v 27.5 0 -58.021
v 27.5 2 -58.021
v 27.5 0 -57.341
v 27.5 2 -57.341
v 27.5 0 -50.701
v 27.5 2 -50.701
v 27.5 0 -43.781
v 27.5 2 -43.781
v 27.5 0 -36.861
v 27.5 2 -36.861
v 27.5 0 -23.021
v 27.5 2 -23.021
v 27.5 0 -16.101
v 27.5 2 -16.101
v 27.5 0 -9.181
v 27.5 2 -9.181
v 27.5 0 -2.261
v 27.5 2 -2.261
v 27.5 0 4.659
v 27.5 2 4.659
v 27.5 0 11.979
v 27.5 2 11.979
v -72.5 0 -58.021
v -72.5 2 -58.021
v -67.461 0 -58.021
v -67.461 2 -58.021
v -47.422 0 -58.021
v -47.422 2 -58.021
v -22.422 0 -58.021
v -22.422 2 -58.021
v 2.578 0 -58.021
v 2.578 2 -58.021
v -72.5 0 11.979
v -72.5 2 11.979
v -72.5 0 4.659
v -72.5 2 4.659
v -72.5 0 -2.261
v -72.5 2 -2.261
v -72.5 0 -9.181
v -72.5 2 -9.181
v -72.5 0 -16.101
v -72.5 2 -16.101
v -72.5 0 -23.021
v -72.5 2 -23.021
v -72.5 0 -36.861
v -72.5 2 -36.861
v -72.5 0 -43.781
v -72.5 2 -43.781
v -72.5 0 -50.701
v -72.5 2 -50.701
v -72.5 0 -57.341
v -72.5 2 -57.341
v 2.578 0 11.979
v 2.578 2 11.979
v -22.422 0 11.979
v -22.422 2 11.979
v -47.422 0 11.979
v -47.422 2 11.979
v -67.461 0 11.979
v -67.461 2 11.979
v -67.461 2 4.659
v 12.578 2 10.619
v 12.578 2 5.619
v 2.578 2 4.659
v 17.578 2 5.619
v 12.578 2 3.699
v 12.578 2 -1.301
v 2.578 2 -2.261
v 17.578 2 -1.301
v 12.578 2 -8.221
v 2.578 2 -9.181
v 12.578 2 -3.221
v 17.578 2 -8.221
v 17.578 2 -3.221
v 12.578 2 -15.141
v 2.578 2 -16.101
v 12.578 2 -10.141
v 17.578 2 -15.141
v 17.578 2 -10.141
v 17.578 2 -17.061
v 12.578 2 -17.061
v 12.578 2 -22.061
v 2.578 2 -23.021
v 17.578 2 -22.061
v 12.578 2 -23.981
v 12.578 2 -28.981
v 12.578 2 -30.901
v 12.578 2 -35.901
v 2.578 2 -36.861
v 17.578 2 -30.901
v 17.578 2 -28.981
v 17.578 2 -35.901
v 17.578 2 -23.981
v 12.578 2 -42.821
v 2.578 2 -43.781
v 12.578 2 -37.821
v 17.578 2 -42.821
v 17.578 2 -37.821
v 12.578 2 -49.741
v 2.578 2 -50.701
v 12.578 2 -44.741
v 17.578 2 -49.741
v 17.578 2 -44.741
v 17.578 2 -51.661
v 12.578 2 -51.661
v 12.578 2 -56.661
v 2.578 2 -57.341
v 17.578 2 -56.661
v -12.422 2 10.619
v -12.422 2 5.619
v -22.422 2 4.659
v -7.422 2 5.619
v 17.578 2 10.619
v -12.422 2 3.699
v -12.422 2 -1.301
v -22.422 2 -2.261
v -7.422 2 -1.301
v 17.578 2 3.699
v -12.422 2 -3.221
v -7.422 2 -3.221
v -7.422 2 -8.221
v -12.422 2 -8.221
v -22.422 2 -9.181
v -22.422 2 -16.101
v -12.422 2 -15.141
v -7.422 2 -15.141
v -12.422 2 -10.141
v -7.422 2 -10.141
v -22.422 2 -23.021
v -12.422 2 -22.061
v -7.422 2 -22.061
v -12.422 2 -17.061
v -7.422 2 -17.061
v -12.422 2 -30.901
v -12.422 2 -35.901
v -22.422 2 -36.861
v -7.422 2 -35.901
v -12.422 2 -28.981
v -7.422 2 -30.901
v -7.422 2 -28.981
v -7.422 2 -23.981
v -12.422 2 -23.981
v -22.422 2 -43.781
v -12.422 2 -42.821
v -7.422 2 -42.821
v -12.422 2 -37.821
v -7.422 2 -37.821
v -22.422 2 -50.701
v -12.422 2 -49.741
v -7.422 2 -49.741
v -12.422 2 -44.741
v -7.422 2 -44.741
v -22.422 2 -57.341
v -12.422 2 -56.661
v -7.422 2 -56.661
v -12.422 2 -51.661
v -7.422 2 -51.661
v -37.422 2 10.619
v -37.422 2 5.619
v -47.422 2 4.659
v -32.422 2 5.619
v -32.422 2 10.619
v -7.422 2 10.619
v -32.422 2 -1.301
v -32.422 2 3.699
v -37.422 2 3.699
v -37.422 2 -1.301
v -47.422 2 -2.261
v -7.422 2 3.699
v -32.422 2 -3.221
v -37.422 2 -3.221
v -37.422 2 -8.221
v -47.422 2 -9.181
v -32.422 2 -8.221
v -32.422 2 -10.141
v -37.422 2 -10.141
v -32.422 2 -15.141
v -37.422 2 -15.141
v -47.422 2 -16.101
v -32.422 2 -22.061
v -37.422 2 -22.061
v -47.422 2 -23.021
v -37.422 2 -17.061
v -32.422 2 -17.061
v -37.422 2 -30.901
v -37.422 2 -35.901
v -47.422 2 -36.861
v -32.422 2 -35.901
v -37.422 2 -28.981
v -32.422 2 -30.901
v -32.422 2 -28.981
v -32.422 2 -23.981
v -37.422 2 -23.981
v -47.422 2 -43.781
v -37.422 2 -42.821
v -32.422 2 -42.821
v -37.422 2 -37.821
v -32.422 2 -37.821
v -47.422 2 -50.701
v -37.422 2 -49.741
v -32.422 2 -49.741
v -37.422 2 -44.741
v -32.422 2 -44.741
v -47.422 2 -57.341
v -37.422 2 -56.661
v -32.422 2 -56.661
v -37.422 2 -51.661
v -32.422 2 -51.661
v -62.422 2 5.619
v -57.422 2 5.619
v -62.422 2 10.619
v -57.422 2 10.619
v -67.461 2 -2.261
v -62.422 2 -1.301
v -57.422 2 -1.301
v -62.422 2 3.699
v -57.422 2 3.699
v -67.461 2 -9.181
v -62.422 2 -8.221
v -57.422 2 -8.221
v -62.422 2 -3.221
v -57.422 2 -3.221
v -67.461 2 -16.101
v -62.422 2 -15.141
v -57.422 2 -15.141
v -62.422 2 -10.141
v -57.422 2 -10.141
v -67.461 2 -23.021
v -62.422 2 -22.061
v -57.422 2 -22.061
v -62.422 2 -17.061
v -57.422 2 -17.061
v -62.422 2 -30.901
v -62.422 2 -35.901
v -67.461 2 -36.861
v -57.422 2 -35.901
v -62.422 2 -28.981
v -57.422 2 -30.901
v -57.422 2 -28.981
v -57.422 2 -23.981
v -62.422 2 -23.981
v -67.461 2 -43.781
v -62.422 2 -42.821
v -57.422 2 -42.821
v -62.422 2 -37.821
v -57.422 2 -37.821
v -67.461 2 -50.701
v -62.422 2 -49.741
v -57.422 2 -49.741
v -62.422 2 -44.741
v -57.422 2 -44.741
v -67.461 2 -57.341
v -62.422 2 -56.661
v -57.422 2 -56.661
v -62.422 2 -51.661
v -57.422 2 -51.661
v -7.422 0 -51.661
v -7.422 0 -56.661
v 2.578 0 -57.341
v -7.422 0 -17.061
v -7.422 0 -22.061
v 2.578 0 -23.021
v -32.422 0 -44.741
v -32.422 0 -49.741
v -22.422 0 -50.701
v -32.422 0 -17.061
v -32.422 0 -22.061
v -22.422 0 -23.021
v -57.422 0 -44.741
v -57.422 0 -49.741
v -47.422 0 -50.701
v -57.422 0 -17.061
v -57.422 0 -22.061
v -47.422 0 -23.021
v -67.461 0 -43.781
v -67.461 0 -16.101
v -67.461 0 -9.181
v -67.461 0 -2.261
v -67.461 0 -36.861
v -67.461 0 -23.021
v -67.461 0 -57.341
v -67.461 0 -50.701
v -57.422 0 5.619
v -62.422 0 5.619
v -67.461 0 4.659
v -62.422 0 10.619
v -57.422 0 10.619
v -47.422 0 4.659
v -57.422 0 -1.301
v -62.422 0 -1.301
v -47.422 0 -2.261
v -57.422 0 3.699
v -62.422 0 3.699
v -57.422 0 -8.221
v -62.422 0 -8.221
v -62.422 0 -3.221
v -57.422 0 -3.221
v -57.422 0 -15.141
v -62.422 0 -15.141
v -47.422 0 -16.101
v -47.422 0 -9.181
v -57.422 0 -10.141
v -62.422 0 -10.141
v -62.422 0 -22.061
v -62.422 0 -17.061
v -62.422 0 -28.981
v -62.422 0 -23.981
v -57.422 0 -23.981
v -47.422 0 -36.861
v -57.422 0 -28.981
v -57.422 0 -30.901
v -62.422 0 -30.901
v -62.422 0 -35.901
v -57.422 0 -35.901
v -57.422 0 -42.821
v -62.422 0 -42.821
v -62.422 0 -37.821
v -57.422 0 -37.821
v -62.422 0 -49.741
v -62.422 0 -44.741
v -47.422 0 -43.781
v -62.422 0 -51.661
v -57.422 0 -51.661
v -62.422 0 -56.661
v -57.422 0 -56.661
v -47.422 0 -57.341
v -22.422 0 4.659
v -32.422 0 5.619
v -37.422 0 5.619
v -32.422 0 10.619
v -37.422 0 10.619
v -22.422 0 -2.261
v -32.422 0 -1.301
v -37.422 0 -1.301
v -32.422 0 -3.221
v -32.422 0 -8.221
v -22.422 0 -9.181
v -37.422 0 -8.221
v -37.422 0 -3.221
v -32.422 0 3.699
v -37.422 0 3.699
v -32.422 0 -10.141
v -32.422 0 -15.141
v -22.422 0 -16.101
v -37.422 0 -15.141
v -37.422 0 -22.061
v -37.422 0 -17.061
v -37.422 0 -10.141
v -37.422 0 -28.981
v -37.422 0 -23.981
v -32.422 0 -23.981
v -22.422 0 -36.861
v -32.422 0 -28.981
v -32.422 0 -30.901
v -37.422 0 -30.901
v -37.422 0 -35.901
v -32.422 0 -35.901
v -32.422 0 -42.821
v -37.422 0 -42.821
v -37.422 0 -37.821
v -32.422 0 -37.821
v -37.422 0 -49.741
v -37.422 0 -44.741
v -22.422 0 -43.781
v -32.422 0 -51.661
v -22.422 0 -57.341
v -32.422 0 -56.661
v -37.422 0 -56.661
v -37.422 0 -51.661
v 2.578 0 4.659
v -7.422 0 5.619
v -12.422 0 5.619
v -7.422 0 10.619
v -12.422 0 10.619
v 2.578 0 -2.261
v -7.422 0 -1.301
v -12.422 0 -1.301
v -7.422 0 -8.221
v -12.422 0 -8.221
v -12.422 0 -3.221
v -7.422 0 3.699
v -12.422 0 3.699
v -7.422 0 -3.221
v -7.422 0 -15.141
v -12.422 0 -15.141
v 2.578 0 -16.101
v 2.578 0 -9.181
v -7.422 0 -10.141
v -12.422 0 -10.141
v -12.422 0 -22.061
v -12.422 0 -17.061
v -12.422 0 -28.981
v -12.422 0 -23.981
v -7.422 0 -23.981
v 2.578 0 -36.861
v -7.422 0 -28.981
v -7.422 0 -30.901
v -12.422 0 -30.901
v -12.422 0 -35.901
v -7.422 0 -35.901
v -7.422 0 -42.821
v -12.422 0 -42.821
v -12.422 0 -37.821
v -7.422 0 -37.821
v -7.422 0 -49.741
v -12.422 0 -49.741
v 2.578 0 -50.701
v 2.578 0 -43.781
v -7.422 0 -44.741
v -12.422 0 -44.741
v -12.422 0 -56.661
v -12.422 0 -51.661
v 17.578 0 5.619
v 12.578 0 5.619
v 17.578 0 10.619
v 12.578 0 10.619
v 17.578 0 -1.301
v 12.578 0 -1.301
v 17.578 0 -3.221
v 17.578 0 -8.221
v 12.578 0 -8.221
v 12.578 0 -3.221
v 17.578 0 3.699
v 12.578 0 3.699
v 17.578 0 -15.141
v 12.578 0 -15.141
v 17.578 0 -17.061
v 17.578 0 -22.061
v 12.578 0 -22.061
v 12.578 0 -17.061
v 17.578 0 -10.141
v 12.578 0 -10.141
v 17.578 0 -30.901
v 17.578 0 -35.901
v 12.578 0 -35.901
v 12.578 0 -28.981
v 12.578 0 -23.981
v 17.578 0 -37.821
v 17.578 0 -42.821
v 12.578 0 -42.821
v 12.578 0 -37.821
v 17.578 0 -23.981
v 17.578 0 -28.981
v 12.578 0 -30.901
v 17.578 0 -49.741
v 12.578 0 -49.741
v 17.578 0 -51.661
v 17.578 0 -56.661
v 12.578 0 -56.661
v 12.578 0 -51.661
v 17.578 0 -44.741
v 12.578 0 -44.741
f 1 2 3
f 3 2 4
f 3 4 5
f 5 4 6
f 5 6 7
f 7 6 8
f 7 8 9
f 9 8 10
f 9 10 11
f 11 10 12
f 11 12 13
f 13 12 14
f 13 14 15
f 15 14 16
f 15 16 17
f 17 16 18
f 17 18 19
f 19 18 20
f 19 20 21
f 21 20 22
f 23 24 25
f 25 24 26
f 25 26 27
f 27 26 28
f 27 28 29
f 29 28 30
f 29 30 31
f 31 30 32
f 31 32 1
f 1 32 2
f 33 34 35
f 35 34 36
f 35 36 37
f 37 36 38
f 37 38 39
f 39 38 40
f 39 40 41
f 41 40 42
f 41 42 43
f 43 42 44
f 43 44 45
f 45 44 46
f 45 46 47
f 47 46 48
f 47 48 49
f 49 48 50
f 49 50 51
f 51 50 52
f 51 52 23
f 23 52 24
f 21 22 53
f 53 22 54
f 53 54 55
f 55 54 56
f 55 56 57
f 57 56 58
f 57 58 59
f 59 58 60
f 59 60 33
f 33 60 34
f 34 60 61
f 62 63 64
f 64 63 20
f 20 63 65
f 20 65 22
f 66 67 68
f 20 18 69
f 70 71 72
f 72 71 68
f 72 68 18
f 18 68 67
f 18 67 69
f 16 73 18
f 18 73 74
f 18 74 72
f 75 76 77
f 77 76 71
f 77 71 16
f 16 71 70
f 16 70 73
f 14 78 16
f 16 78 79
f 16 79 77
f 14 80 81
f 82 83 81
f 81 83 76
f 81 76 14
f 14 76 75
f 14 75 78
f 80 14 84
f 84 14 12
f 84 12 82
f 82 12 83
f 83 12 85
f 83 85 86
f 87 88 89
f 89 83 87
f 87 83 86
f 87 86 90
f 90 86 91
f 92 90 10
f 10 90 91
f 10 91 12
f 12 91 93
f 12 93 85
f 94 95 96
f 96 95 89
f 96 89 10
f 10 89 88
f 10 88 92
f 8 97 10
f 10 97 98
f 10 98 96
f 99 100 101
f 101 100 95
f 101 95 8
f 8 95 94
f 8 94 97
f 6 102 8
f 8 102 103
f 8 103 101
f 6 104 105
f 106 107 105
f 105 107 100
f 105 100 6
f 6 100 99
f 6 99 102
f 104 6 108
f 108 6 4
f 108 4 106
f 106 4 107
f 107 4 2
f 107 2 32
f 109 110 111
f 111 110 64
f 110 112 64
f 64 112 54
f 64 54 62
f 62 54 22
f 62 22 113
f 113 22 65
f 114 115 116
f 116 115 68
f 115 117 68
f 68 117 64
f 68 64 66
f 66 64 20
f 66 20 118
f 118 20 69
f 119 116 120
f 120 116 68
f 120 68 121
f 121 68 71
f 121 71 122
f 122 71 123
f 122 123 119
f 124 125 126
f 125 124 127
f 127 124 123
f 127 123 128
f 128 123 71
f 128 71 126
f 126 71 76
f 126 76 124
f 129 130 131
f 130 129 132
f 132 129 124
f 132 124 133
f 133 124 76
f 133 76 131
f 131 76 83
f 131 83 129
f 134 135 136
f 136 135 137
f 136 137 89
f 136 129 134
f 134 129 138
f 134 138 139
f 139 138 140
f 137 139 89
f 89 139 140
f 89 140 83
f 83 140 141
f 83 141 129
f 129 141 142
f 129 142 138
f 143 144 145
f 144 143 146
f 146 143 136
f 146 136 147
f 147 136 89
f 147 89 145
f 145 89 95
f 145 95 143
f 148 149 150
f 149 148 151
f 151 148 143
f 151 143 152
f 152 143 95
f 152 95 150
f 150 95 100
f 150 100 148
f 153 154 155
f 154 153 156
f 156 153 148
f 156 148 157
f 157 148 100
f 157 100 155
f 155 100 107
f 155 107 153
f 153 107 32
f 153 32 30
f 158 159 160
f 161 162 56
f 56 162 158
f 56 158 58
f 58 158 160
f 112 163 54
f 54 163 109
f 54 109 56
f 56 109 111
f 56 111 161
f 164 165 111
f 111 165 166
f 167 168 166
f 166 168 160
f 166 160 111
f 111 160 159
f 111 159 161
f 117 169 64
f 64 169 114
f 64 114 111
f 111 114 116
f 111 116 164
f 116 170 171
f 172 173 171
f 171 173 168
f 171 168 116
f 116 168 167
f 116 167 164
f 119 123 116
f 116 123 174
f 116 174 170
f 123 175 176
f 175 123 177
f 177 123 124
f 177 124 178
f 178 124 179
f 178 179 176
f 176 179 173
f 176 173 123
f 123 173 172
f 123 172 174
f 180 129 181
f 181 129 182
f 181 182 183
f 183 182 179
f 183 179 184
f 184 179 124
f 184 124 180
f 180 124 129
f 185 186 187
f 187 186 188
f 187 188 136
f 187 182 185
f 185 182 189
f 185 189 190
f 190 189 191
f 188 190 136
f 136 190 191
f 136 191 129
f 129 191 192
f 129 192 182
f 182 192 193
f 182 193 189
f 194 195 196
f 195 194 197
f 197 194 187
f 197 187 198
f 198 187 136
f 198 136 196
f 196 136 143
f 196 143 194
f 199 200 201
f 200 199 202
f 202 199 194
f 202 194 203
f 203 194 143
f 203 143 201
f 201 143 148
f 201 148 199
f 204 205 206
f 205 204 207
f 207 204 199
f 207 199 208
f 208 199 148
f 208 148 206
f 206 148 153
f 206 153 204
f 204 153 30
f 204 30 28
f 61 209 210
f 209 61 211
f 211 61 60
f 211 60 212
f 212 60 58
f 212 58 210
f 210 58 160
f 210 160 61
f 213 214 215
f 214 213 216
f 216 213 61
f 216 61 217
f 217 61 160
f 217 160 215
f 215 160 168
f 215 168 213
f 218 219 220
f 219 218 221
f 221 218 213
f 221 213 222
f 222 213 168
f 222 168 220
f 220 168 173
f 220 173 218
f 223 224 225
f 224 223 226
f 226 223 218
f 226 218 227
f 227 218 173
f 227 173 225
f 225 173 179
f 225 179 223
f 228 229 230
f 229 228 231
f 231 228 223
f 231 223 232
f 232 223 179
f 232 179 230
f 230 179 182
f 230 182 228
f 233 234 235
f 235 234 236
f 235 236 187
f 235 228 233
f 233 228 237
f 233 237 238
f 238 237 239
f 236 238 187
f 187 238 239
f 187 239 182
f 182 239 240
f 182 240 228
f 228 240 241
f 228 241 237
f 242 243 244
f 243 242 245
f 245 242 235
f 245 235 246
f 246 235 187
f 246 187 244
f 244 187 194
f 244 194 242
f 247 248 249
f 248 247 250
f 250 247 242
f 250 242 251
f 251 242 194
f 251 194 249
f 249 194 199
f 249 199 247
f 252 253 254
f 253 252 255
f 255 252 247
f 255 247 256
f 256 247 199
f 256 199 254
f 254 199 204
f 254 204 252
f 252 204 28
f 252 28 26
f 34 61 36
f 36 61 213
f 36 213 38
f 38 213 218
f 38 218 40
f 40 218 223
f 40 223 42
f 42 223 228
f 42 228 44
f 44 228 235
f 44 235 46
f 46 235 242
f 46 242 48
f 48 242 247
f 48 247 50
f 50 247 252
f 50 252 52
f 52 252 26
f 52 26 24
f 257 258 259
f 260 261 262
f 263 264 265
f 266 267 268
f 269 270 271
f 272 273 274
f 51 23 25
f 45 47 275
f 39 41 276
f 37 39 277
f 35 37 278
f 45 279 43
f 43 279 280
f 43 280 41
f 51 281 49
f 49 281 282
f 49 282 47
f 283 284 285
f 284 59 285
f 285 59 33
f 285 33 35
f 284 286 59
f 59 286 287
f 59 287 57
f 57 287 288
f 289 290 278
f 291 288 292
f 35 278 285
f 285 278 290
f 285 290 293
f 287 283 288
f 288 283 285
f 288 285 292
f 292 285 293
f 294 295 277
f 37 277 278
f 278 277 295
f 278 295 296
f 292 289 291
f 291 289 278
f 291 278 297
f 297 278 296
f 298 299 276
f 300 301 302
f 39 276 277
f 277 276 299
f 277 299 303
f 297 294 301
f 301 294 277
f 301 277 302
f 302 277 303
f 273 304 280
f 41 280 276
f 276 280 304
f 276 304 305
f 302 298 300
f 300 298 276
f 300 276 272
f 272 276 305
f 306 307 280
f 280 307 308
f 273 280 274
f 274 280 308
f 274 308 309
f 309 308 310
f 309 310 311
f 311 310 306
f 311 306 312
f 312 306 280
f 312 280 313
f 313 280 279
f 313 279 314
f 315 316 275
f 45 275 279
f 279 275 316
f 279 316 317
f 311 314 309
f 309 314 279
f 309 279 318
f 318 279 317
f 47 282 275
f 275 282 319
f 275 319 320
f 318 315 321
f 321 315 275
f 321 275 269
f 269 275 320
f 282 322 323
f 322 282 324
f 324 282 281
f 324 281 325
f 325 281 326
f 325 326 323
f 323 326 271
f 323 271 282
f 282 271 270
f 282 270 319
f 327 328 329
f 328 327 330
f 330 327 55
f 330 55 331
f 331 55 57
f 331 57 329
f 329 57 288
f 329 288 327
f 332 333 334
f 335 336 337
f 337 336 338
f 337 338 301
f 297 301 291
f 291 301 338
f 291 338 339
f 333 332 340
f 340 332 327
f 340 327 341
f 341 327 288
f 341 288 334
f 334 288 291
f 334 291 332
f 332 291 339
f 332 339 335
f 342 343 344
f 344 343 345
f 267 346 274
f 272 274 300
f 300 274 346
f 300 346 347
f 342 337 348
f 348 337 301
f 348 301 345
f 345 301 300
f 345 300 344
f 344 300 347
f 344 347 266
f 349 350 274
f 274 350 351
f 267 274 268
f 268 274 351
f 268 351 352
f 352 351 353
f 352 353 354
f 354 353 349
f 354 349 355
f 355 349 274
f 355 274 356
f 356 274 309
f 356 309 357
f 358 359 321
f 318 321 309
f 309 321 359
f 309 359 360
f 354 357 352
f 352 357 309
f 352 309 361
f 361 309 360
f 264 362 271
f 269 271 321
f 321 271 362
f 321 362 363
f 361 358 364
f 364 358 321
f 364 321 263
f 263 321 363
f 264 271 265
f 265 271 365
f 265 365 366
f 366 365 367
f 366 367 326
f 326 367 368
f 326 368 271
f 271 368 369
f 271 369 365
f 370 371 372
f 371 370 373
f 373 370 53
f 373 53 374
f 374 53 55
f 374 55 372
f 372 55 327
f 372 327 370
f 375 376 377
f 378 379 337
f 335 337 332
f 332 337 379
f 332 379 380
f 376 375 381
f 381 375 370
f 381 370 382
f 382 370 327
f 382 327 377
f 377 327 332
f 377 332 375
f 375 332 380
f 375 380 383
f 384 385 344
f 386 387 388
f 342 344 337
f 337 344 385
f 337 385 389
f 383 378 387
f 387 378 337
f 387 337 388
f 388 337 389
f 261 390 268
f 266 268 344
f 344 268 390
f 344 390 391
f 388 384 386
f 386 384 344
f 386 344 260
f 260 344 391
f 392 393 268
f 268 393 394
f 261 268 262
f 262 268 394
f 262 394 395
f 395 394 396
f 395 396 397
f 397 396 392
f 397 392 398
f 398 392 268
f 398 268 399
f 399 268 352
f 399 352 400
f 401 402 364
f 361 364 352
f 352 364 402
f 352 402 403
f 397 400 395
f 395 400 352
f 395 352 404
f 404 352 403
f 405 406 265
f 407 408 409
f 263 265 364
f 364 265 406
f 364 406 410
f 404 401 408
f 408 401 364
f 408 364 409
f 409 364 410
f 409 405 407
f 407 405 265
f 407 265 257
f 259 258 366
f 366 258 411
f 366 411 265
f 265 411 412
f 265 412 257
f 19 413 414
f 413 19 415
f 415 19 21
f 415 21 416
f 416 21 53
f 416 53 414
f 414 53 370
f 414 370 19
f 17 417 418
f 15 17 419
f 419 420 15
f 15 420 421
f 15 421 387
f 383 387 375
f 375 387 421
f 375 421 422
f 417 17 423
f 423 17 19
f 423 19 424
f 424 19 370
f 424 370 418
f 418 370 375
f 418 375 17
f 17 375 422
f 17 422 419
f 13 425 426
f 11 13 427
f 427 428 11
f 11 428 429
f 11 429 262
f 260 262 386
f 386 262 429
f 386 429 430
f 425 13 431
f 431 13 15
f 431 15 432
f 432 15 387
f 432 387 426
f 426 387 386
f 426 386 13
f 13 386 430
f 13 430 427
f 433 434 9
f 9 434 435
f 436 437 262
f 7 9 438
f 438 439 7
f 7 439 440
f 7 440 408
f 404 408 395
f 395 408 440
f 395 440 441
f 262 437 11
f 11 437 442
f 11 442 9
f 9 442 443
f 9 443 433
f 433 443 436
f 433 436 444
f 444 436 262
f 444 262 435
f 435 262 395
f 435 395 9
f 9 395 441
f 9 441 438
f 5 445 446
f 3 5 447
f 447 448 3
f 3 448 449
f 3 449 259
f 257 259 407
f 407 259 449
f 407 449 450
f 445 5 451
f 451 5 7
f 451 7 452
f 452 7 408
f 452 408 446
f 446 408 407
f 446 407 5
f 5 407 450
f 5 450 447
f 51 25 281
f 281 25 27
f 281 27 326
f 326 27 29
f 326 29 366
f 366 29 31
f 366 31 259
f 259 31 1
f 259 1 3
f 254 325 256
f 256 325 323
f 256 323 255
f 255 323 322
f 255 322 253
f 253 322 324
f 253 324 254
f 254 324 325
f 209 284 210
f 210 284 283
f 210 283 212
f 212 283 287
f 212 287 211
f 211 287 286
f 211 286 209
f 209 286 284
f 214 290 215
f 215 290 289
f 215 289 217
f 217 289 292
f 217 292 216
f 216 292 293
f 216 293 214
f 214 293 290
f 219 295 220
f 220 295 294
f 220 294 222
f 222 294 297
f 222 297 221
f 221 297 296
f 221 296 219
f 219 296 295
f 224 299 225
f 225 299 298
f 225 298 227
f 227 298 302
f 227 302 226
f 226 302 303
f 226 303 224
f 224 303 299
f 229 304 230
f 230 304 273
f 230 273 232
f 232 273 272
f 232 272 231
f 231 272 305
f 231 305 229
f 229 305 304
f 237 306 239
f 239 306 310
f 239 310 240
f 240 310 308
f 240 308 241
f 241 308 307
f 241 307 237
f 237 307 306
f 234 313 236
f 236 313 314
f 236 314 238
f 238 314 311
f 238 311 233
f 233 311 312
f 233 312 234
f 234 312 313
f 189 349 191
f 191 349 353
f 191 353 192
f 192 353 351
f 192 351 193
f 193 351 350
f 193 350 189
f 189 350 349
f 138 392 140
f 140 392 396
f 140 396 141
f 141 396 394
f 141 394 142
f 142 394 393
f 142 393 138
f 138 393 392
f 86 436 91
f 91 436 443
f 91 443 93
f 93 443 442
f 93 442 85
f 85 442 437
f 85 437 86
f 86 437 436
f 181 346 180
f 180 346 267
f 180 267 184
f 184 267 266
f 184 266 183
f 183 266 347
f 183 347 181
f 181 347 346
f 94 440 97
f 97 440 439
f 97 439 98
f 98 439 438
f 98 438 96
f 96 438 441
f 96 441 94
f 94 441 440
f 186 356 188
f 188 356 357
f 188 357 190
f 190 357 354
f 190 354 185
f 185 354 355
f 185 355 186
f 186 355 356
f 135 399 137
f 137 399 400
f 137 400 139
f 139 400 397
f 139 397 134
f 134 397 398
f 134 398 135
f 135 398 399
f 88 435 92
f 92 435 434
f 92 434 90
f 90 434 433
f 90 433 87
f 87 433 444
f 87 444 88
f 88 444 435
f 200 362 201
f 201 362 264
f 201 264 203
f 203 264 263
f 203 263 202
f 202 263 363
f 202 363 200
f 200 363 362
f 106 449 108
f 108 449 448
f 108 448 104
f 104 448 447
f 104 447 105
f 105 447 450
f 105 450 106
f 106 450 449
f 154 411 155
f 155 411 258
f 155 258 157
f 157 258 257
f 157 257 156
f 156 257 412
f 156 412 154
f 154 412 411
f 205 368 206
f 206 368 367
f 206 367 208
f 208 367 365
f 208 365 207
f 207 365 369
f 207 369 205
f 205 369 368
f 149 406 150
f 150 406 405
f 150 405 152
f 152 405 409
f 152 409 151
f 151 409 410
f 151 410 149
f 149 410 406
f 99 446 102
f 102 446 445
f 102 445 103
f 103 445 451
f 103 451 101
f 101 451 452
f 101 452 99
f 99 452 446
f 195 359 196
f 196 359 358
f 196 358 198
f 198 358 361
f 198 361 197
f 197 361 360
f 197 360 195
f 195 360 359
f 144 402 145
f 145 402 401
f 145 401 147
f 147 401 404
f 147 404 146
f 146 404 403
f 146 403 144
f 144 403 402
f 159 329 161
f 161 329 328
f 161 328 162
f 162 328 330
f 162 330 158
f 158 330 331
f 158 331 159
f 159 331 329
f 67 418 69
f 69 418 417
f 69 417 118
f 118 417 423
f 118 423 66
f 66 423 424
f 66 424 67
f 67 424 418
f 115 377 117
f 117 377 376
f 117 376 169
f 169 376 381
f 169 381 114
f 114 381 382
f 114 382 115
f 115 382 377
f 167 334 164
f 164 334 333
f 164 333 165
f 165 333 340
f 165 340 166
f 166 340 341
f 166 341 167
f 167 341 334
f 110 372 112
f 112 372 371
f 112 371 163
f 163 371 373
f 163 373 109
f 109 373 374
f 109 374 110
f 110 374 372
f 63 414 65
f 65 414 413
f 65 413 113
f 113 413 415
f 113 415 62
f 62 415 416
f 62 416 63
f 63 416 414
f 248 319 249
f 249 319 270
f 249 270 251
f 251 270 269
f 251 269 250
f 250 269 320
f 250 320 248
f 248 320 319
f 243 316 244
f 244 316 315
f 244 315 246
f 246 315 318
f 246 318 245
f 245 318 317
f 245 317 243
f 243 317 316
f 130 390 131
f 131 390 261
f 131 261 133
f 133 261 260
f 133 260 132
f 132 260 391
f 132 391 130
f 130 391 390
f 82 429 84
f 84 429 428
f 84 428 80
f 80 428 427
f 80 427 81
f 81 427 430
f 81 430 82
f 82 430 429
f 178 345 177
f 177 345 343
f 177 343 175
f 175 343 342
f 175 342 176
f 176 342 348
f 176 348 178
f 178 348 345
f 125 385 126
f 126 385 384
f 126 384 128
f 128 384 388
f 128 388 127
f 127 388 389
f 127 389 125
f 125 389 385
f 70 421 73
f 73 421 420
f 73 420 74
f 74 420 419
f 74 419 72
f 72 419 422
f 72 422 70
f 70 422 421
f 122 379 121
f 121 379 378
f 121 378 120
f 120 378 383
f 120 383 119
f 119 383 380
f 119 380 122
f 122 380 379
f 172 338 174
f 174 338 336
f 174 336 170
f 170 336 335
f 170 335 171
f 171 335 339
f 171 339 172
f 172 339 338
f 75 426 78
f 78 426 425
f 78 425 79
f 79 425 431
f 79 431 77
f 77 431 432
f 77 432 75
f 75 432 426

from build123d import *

# Parameters (mm, degrees)
SKETCH1_W           = 100
SKETCH1_H           = 70
BOSS_EXTRUDE1_DEPTH = 2
SKETCH2_W           = 5
SKETCH2_H           = 5
CUT_EXTRUDE1_DEPTH  = 10


with BuildPart() as part:
    # Sketch1 → Boss-Extrude1 (new body)
    with BuildSketch(Plane(origin=(0, 0, 0), x_dir=(1, 0, 0), z_dir=(0, 1, 0))):
        with Locations((-22.5, 23.020833333)):
            Rectangle(SKETCH1_W, SKETCH1_H)
    extrude(amount=BOSS_EXTRUDE1_DEPTH)

    # Sketch2 → Cut-Extrude1 (cut)
    with BuildSketch(Plane(origin=(0, 2, 0), x_dir=(1, 0, 0), z_dir=(0, 1, 0))):
        with Locations((-34.922189654, 54.160833333)):
            Rectangle(SKETCH2_W, SKETCH2_H)
        with Locations((-59.922189654, 54.160833333)):
            Rectangle(SKETCH2_W, SKETCH2_H)
        with Locations((-9.922189654, 54.160833333)):
            Rectangle(SKETCH2_W, SKETCH2_H)
        with Locations((15.077810346, 54.160833333)):
            Rectangle(SKETCH2_W, SKETCH2_H)
        with Locations((-34.922189654, 47.240833333)):
            Rectangle(SKETCH2_W, SKETCH2_H)
        with Locations((-9.922189654, 47.240833333)):
            Rectangle(SKETCH2_W, SKETCH2_H)
        with Locations((15.077810346, 47.240833333)):
            Rectangle(SKETCH2_W, SKETCH2_H)
        with Locations((-34.922189654, 40.320833333)):
            Rectangle(SKETCH2_W, SKETCH2_H)
        with Locations((-9.922189654, 40.320833333)):
            Rectangle(SKETCH2_W, SKETCH2_H)
        with Locations((15.077810346, 40.320833333)):
            Rectangle(SKETCH2_W, SKETCH2_H)
        with Locations((-34.922189654, 33.400833333)):
            Rectangle(SKETCH2_W, SKETCH2_H)
        with Locations((-9.922189654, 33.400833333)):
            Rectangle(SKETCH2_W, SKETCH2_H)
        with Locations((15.077810346, 33.400833333)):
            Rectangle(SKETCH2_W, SKETCH2_H)
        with Locations((-34.922189654, 26.480833333)):
            Rectangle(SKETCH2_W, SKETCH2_H)
        with Locations((-9.922189654, 26.480833333)):
            Rectangle(SKETCH2_W, SKETCH2_H)
        with Locations((15.077810346, 26.480833333)):
            Rectangle(SKETCH2_W, SKETCH2_H)
        with Locations((-34.922189654, 19.560833333)):
            Rectangle(SKETCH2_W, SKETCH2_H)
        with Locations((-9.922189654, 19.560833333)):
            Rectangle(SKETCH2_W, SKETCH2_H)
        with Locations((15.077810346, 19.560833333)):
            Rectangle(SKETCH2_W, SKETCH2_H)
        with Locations((-34.922189654, 12.640833333)):
            Rectangle(SKETCH2_W, SKETCH2_H)
        with Locations((-9.922189654, 12.640833333)):
            Rectangle(SKETCH2_W, SKETCH2_H)
        with Locations((15.077810346, 12.640833333)):
            Rectangle(SKETCH2_W, SKETCH2_H)
        with Locations((-34.922189654, 5.720833333)):
            Rectangle(SKETCH2_W, SKETCH2_H)
        with Locations((-9.922189654, 5.720833333)):
            Rectangle(SKETCH2_W, SKETCH2_H)
        with Locations((15.077810346, 5.720833333)):
            Rectangle(SKETCH2_W, SKETCH2_H)
        with Locations((-34.922189654, -1.199166667)):
            Rectangle(SKETCH2_W, SKETCH2_H)
        with Locations((-9.922189654, -1.199166667)):
            Rectangle(SKETCH2_W, SKETCH2_H)
        with Locations((15.077810346, -1.199166667)):
            Rectangle(SKETCH2_W, SKETCH2_H)
        with Locations((-34.922189654, -8.119166667)):
            Rectangle(SKETCH2_W, SKETCH2_H)
        with Locations((-9.922189654, -8.119166667)):
            Rectangle(SKETCH2_W, SKETCH2_H)
        with Locations((15.077810346, -8.119166667)):
            Rectangle(SKETCH2_W, SKETCH2_H)
        with Locations((-59.922189654, 47.240833333)):
            Rectangle(SKETCH2_W, SKETCH2_H)
        with Locations((-59.922189654, 40.320833333)):
            Rectangle(SKETCH2_W, SKETCH2_H)
        with Locations((-59.922189654, 33.400833333)):
            Rectangle(SKETCH2_W, SKETCH2_H)
        with Locations((-59.922189654, 26.480833333)):
            Rectangle(SKETCH2_W, SKETCH2_H)
        with Locations((-59.922189654, 19.560833333)):
            Rectangle(SKETCH2_W, SKETCH2_H)
        with Locations((-59.922189654, 12.640833333)):
            Rectangle(SKETCH2_W, SKETCH2_H)
        with Locations((-59.922189654, 5.720833333)):
            Rectangle(SKETCH2_W, SKETCH2_H)
        with Locations((-59.922189654, -1.199166667)):
            Rectangle(SKETCH2_W, SKETCH2_H)
        with Locations((-59.922189654, -8.119166667)):
            Rectangle(SKETCH2_W, SKETCH2_H)
    extrude(amount=-CUT_EXTRUDE1_DEPTH, mode=Mode.SUBTRACT)


solid = part.part
